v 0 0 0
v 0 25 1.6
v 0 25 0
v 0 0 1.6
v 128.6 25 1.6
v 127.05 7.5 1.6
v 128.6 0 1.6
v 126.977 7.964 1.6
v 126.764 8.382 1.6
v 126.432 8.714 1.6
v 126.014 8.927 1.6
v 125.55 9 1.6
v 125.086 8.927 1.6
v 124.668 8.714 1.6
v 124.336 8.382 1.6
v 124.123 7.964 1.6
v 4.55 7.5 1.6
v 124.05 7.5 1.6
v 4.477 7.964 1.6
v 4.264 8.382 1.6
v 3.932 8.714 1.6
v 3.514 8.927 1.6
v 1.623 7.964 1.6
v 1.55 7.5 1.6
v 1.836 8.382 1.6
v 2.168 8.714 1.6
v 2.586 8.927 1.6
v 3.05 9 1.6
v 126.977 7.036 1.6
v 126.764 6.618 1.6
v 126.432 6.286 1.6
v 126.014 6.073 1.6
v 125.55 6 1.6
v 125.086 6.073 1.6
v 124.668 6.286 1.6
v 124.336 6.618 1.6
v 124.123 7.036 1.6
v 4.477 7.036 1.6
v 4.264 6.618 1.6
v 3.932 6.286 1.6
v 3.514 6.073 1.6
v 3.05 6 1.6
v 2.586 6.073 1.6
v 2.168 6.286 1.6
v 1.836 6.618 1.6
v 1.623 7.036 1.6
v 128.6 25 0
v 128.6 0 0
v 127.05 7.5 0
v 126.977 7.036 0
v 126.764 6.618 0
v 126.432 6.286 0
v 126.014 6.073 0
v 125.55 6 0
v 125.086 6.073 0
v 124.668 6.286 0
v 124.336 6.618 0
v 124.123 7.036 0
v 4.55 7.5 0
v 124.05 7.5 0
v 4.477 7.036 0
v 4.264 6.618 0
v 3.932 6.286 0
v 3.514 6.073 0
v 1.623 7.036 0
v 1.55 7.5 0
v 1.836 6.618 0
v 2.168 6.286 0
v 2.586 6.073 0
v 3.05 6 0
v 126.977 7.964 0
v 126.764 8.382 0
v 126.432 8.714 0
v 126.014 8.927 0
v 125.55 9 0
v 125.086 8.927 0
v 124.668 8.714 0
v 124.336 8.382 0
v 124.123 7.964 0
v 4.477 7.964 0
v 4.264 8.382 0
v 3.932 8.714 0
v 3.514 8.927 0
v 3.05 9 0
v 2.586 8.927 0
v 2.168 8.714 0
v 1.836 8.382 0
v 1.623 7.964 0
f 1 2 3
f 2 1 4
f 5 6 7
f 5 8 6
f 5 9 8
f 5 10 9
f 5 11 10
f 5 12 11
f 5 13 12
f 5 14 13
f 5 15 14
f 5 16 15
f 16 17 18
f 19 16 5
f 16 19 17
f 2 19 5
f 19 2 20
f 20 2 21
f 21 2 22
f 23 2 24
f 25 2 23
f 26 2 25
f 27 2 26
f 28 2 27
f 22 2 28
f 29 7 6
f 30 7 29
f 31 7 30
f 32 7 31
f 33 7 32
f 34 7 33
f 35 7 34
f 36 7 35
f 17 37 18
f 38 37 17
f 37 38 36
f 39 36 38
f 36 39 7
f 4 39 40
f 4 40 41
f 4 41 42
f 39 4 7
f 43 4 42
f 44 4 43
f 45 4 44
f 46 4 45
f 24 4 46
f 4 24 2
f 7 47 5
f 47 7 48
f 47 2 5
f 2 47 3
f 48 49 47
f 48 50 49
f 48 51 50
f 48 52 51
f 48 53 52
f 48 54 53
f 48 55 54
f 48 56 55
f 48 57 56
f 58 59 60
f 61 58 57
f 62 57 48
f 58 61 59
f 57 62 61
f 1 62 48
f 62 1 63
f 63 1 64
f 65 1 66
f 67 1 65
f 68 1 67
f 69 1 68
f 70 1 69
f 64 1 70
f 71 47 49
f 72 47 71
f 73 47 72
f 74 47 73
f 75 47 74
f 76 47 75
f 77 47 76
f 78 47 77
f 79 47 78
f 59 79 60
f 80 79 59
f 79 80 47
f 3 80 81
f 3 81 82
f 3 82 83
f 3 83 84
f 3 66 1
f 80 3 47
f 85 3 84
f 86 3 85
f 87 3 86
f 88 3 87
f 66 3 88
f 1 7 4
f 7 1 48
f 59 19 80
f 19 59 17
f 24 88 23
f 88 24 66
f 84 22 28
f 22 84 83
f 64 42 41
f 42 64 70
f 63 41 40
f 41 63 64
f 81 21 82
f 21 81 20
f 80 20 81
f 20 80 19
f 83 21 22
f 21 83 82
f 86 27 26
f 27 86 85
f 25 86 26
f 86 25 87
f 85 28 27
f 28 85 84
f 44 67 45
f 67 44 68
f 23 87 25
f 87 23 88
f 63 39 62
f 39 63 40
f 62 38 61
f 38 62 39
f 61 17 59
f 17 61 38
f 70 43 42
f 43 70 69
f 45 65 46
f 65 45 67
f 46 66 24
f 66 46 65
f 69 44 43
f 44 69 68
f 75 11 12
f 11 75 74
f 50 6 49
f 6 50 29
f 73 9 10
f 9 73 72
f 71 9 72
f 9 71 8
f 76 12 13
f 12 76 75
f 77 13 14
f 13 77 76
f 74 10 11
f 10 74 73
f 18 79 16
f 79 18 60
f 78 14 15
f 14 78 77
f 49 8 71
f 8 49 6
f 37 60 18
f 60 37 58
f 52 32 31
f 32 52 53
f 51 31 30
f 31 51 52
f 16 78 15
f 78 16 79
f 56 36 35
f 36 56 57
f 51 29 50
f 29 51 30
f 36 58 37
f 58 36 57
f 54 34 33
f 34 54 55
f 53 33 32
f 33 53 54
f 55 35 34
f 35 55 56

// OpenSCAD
/************************************************************************

	podule_half_cover.scad
    
	Acorn Archimedes A3xx/A4xx half-width podule cover
    Copyright (C) 2019 Simon Inns
    
    This is free software: you can redistribute it and/or modify
	it under the terms of the GNU General Public License as published by
	the Free Software Foundation, either version 3 of the License, or
	(at your option) any later version.
    
    This program is distributed in the hope that it will be useful,
    but WITHOUT ANY WARRANTY; without even the implied warranty of
    MERCHANTABILITY or FITNESS FOR A PARTICULAR PURPOSE.  See the
    GNU General Public License for more details.
    
    You should have received a copy of the GNU General Public License
    along with this program.  If not, see <http://www.gnu.org/licenses/>.
	
    Email: simon.inns@gmail.com
    
************************************************************************/

$fn = 20;

difference() {
    // Main plate
    cube([128.6, 25.0, 1.6], center = false);

    // M2.5 screw hole left
    translate([(128.6 - 122.5) / 2, 7.5, 0.0]) {
        cylinder(3.0, 3.0 / 2, 3.0 / 2);
    }

    // M2.5 screw hole right
    translate([128.6 - ((128.6 - 122.5) / 2), 7.5, 0.0]) {
        cylinder(3.0, 3.0 / 2, 3.0 / 2);
    }
}
